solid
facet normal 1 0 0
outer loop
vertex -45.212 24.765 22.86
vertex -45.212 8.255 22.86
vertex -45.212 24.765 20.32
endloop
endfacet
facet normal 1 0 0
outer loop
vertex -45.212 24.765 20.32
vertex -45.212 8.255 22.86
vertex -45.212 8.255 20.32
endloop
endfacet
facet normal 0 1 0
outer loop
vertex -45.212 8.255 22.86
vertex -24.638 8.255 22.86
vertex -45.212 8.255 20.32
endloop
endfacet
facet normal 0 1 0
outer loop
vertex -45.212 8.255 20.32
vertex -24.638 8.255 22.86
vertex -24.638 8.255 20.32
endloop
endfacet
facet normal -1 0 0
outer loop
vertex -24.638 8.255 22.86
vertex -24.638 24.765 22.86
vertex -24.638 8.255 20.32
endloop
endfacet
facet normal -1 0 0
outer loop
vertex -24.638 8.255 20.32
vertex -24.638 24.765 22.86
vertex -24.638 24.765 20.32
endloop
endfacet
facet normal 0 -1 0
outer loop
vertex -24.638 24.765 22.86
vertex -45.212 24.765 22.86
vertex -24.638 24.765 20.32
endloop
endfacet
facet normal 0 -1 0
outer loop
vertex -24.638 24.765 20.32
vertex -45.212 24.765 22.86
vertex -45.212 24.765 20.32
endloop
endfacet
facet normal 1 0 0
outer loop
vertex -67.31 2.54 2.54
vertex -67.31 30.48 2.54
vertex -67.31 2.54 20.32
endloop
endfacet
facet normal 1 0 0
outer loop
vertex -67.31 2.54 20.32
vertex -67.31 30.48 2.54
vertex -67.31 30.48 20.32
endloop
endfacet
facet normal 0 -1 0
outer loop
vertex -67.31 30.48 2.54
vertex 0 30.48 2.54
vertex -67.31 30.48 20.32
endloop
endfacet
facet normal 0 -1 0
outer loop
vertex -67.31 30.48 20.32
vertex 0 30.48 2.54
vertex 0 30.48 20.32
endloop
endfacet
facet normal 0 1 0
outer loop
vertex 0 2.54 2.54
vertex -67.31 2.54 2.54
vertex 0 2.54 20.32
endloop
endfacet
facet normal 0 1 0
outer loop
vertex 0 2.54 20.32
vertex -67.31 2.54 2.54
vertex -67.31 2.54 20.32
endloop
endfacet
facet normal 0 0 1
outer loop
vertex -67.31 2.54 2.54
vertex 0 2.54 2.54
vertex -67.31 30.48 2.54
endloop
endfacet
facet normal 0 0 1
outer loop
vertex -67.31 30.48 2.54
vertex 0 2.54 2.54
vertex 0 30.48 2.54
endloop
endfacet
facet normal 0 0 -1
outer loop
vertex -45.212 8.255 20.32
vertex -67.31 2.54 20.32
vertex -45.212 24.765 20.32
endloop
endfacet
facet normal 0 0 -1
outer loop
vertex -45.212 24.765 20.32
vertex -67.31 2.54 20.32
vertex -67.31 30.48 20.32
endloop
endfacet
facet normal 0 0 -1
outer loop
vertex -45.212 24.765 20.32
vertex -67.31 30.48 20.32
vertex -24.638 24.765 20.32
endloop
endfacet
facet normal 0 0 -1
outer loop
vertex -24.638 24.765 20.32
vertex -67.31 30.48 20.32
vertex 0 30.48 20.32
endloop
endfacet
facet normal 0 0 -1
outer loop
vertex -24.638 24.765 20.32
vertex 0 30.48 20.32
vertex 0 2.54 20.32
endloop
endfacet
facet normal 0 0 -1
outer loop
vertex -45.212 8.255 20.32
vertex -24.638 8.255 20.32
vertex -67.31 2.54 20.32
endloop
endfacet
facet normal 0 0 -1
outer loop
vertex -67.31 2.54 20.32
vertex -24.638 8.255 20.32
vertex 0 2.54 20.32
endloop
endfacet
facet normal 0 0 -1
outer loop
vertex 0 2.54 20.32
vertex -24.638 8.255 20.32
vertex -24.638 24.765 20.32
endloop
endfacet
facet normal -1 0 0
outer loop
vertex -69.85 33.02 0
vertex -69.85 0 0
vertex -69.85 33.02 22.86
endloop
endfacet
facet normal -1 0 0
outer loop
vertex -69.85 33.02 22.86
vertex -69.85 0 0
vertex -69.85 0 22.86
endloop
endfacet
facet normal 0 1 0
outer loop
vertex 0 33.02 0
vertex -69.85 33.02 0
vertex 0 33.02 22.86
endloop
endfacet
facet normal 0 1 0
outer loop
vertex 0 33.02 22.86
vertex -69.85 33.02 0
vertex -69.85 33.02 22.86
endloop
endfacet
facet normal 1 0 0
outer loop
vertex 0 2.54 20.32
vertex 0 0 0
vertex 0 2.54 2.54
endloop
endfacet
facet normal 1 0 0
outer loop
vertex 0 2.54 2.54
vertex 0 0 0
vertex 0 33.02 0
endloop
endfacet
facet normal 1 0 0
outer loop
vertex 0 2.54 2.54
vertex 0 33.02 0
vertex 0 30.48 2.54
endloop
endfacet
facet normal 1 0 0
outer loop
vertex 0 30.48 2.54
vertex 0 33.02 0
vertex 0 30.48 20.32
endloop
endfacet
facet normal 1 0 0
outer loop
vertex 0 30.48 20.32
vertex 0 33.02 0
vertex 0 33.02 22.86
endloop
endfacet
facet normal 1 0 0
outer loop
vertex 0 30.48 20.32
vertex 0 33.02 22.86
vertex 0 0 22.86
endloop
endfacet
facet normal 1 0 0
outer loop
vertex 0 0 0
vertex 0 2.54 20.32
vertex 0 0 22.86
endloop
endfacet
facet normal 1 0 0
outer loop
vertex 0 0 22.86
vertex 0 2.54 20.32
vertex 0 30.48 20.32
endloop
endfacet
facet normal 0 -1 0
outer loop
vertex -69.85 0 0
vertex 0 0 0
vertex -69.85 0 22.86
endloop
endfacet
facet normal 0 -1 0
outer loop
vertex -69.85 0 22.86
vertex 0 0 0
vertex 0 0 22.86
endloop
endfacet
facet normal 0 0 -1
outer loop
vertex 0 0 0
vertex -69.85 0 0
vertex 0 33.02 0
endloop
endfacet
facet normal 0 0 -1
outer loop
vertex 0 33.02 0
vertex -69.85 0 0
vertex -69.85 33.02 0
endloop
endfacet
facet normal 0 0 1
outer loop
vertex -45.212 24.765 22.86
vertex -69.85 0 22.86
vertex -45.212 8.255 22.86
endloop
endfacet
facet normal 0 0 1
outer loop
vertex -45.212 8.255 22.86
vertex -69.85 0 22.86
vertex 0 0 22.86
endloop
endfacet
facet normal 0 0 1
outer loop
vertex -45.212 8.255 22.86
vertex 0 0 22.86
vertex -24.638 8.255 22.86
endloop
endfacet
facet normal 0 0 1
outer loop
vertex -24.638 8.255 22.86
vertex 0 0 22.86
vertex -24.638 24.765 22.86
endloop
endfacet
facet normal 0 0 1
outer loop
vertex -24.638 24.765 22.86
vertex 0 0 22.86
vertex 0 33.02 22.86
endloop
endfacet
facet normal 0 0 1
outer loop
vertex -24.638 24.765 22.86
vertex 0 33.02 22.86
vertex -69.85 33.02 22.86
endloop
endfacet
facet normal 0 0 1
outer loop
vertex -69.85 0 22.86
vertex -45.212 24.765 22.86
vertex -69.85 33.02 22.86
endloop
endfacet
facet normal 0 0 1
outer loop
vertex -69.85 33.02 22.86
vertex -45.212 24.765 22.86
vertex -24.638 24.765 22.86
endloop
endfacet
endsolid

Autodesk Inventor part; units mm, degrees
ref_plane "YZ Plane" through (0, 0, 0) normal (1, 0, 0) x (0, 1, 0)
ref_plane "XZ Plane" through (0, 0, 0) normal (0, 1, 0) x (-1, 0, 0)
ref_plane "XY Plane" through (0, 0, 0) normal (0, 0, 1) x (1, 0, 0)
sketch "Sketch1" plane through (0, 0, 0) normal (0, 0, 1) x (1, 0, 0)
  line L0 (0, 0) -> (-69.85, 0)
  line L1 (-69.85, 0) -> (-69.85, 33.02)
  line L2 (-69.85, 33.02) -> (0, 33.02)
  line L3 (0, 33.02) -> (0, 0)
  dimension "d0" = 69.85
  dimension "d1" = 33.02
extrude "Extrusion1" add sketch "Sketch1" along normal blind 22.86
shell "Shell1" thickness 2.54 removed faces 1 at (0, 22.0133, 15.24)
sketch "Sketch2" plane through (0, 0, 22.86) normal (0, 0, 1) x (1, 0, 0)
  line L0 (0, 33.02) -> (-69.85, 33.02) projected
  line L1 (-69.85, 0) -> (0, 0) projected
  line L2 (-69.85, 33.02) -> (-69.85, 0) projected
  line L3 (0, 0) -> (0, 33.02) projected
  line L4 (-45.212, 16.51) -> (-45.212, 24.765)
  line L5 (-45.212, 24.765) -> (-34.925, 24.765)
  line L6 (-34.925, 8.255) -> (-45.212, 8.255)
  line L7 (-45.212, 8.255) -> (-45.212, 16.51)
  line L8 (-24.638, 16.51) -> (-24.638, 8.255)
  line L9 (-24.638, 8.255) -> (-34.925, 8.255)
  line L10 (-24.638, 16.51) -> (-24.638, 24.765)
  line L11 (-24.638, 24.765) -> (-34.925, 24.765)
extrude "Extrusion2" cut sketch "Sketch2" against normal blind 2.54 contours L4 L5 L11 L10 L8 L9 L6 L7
properties part number "Scanner Case v3"
